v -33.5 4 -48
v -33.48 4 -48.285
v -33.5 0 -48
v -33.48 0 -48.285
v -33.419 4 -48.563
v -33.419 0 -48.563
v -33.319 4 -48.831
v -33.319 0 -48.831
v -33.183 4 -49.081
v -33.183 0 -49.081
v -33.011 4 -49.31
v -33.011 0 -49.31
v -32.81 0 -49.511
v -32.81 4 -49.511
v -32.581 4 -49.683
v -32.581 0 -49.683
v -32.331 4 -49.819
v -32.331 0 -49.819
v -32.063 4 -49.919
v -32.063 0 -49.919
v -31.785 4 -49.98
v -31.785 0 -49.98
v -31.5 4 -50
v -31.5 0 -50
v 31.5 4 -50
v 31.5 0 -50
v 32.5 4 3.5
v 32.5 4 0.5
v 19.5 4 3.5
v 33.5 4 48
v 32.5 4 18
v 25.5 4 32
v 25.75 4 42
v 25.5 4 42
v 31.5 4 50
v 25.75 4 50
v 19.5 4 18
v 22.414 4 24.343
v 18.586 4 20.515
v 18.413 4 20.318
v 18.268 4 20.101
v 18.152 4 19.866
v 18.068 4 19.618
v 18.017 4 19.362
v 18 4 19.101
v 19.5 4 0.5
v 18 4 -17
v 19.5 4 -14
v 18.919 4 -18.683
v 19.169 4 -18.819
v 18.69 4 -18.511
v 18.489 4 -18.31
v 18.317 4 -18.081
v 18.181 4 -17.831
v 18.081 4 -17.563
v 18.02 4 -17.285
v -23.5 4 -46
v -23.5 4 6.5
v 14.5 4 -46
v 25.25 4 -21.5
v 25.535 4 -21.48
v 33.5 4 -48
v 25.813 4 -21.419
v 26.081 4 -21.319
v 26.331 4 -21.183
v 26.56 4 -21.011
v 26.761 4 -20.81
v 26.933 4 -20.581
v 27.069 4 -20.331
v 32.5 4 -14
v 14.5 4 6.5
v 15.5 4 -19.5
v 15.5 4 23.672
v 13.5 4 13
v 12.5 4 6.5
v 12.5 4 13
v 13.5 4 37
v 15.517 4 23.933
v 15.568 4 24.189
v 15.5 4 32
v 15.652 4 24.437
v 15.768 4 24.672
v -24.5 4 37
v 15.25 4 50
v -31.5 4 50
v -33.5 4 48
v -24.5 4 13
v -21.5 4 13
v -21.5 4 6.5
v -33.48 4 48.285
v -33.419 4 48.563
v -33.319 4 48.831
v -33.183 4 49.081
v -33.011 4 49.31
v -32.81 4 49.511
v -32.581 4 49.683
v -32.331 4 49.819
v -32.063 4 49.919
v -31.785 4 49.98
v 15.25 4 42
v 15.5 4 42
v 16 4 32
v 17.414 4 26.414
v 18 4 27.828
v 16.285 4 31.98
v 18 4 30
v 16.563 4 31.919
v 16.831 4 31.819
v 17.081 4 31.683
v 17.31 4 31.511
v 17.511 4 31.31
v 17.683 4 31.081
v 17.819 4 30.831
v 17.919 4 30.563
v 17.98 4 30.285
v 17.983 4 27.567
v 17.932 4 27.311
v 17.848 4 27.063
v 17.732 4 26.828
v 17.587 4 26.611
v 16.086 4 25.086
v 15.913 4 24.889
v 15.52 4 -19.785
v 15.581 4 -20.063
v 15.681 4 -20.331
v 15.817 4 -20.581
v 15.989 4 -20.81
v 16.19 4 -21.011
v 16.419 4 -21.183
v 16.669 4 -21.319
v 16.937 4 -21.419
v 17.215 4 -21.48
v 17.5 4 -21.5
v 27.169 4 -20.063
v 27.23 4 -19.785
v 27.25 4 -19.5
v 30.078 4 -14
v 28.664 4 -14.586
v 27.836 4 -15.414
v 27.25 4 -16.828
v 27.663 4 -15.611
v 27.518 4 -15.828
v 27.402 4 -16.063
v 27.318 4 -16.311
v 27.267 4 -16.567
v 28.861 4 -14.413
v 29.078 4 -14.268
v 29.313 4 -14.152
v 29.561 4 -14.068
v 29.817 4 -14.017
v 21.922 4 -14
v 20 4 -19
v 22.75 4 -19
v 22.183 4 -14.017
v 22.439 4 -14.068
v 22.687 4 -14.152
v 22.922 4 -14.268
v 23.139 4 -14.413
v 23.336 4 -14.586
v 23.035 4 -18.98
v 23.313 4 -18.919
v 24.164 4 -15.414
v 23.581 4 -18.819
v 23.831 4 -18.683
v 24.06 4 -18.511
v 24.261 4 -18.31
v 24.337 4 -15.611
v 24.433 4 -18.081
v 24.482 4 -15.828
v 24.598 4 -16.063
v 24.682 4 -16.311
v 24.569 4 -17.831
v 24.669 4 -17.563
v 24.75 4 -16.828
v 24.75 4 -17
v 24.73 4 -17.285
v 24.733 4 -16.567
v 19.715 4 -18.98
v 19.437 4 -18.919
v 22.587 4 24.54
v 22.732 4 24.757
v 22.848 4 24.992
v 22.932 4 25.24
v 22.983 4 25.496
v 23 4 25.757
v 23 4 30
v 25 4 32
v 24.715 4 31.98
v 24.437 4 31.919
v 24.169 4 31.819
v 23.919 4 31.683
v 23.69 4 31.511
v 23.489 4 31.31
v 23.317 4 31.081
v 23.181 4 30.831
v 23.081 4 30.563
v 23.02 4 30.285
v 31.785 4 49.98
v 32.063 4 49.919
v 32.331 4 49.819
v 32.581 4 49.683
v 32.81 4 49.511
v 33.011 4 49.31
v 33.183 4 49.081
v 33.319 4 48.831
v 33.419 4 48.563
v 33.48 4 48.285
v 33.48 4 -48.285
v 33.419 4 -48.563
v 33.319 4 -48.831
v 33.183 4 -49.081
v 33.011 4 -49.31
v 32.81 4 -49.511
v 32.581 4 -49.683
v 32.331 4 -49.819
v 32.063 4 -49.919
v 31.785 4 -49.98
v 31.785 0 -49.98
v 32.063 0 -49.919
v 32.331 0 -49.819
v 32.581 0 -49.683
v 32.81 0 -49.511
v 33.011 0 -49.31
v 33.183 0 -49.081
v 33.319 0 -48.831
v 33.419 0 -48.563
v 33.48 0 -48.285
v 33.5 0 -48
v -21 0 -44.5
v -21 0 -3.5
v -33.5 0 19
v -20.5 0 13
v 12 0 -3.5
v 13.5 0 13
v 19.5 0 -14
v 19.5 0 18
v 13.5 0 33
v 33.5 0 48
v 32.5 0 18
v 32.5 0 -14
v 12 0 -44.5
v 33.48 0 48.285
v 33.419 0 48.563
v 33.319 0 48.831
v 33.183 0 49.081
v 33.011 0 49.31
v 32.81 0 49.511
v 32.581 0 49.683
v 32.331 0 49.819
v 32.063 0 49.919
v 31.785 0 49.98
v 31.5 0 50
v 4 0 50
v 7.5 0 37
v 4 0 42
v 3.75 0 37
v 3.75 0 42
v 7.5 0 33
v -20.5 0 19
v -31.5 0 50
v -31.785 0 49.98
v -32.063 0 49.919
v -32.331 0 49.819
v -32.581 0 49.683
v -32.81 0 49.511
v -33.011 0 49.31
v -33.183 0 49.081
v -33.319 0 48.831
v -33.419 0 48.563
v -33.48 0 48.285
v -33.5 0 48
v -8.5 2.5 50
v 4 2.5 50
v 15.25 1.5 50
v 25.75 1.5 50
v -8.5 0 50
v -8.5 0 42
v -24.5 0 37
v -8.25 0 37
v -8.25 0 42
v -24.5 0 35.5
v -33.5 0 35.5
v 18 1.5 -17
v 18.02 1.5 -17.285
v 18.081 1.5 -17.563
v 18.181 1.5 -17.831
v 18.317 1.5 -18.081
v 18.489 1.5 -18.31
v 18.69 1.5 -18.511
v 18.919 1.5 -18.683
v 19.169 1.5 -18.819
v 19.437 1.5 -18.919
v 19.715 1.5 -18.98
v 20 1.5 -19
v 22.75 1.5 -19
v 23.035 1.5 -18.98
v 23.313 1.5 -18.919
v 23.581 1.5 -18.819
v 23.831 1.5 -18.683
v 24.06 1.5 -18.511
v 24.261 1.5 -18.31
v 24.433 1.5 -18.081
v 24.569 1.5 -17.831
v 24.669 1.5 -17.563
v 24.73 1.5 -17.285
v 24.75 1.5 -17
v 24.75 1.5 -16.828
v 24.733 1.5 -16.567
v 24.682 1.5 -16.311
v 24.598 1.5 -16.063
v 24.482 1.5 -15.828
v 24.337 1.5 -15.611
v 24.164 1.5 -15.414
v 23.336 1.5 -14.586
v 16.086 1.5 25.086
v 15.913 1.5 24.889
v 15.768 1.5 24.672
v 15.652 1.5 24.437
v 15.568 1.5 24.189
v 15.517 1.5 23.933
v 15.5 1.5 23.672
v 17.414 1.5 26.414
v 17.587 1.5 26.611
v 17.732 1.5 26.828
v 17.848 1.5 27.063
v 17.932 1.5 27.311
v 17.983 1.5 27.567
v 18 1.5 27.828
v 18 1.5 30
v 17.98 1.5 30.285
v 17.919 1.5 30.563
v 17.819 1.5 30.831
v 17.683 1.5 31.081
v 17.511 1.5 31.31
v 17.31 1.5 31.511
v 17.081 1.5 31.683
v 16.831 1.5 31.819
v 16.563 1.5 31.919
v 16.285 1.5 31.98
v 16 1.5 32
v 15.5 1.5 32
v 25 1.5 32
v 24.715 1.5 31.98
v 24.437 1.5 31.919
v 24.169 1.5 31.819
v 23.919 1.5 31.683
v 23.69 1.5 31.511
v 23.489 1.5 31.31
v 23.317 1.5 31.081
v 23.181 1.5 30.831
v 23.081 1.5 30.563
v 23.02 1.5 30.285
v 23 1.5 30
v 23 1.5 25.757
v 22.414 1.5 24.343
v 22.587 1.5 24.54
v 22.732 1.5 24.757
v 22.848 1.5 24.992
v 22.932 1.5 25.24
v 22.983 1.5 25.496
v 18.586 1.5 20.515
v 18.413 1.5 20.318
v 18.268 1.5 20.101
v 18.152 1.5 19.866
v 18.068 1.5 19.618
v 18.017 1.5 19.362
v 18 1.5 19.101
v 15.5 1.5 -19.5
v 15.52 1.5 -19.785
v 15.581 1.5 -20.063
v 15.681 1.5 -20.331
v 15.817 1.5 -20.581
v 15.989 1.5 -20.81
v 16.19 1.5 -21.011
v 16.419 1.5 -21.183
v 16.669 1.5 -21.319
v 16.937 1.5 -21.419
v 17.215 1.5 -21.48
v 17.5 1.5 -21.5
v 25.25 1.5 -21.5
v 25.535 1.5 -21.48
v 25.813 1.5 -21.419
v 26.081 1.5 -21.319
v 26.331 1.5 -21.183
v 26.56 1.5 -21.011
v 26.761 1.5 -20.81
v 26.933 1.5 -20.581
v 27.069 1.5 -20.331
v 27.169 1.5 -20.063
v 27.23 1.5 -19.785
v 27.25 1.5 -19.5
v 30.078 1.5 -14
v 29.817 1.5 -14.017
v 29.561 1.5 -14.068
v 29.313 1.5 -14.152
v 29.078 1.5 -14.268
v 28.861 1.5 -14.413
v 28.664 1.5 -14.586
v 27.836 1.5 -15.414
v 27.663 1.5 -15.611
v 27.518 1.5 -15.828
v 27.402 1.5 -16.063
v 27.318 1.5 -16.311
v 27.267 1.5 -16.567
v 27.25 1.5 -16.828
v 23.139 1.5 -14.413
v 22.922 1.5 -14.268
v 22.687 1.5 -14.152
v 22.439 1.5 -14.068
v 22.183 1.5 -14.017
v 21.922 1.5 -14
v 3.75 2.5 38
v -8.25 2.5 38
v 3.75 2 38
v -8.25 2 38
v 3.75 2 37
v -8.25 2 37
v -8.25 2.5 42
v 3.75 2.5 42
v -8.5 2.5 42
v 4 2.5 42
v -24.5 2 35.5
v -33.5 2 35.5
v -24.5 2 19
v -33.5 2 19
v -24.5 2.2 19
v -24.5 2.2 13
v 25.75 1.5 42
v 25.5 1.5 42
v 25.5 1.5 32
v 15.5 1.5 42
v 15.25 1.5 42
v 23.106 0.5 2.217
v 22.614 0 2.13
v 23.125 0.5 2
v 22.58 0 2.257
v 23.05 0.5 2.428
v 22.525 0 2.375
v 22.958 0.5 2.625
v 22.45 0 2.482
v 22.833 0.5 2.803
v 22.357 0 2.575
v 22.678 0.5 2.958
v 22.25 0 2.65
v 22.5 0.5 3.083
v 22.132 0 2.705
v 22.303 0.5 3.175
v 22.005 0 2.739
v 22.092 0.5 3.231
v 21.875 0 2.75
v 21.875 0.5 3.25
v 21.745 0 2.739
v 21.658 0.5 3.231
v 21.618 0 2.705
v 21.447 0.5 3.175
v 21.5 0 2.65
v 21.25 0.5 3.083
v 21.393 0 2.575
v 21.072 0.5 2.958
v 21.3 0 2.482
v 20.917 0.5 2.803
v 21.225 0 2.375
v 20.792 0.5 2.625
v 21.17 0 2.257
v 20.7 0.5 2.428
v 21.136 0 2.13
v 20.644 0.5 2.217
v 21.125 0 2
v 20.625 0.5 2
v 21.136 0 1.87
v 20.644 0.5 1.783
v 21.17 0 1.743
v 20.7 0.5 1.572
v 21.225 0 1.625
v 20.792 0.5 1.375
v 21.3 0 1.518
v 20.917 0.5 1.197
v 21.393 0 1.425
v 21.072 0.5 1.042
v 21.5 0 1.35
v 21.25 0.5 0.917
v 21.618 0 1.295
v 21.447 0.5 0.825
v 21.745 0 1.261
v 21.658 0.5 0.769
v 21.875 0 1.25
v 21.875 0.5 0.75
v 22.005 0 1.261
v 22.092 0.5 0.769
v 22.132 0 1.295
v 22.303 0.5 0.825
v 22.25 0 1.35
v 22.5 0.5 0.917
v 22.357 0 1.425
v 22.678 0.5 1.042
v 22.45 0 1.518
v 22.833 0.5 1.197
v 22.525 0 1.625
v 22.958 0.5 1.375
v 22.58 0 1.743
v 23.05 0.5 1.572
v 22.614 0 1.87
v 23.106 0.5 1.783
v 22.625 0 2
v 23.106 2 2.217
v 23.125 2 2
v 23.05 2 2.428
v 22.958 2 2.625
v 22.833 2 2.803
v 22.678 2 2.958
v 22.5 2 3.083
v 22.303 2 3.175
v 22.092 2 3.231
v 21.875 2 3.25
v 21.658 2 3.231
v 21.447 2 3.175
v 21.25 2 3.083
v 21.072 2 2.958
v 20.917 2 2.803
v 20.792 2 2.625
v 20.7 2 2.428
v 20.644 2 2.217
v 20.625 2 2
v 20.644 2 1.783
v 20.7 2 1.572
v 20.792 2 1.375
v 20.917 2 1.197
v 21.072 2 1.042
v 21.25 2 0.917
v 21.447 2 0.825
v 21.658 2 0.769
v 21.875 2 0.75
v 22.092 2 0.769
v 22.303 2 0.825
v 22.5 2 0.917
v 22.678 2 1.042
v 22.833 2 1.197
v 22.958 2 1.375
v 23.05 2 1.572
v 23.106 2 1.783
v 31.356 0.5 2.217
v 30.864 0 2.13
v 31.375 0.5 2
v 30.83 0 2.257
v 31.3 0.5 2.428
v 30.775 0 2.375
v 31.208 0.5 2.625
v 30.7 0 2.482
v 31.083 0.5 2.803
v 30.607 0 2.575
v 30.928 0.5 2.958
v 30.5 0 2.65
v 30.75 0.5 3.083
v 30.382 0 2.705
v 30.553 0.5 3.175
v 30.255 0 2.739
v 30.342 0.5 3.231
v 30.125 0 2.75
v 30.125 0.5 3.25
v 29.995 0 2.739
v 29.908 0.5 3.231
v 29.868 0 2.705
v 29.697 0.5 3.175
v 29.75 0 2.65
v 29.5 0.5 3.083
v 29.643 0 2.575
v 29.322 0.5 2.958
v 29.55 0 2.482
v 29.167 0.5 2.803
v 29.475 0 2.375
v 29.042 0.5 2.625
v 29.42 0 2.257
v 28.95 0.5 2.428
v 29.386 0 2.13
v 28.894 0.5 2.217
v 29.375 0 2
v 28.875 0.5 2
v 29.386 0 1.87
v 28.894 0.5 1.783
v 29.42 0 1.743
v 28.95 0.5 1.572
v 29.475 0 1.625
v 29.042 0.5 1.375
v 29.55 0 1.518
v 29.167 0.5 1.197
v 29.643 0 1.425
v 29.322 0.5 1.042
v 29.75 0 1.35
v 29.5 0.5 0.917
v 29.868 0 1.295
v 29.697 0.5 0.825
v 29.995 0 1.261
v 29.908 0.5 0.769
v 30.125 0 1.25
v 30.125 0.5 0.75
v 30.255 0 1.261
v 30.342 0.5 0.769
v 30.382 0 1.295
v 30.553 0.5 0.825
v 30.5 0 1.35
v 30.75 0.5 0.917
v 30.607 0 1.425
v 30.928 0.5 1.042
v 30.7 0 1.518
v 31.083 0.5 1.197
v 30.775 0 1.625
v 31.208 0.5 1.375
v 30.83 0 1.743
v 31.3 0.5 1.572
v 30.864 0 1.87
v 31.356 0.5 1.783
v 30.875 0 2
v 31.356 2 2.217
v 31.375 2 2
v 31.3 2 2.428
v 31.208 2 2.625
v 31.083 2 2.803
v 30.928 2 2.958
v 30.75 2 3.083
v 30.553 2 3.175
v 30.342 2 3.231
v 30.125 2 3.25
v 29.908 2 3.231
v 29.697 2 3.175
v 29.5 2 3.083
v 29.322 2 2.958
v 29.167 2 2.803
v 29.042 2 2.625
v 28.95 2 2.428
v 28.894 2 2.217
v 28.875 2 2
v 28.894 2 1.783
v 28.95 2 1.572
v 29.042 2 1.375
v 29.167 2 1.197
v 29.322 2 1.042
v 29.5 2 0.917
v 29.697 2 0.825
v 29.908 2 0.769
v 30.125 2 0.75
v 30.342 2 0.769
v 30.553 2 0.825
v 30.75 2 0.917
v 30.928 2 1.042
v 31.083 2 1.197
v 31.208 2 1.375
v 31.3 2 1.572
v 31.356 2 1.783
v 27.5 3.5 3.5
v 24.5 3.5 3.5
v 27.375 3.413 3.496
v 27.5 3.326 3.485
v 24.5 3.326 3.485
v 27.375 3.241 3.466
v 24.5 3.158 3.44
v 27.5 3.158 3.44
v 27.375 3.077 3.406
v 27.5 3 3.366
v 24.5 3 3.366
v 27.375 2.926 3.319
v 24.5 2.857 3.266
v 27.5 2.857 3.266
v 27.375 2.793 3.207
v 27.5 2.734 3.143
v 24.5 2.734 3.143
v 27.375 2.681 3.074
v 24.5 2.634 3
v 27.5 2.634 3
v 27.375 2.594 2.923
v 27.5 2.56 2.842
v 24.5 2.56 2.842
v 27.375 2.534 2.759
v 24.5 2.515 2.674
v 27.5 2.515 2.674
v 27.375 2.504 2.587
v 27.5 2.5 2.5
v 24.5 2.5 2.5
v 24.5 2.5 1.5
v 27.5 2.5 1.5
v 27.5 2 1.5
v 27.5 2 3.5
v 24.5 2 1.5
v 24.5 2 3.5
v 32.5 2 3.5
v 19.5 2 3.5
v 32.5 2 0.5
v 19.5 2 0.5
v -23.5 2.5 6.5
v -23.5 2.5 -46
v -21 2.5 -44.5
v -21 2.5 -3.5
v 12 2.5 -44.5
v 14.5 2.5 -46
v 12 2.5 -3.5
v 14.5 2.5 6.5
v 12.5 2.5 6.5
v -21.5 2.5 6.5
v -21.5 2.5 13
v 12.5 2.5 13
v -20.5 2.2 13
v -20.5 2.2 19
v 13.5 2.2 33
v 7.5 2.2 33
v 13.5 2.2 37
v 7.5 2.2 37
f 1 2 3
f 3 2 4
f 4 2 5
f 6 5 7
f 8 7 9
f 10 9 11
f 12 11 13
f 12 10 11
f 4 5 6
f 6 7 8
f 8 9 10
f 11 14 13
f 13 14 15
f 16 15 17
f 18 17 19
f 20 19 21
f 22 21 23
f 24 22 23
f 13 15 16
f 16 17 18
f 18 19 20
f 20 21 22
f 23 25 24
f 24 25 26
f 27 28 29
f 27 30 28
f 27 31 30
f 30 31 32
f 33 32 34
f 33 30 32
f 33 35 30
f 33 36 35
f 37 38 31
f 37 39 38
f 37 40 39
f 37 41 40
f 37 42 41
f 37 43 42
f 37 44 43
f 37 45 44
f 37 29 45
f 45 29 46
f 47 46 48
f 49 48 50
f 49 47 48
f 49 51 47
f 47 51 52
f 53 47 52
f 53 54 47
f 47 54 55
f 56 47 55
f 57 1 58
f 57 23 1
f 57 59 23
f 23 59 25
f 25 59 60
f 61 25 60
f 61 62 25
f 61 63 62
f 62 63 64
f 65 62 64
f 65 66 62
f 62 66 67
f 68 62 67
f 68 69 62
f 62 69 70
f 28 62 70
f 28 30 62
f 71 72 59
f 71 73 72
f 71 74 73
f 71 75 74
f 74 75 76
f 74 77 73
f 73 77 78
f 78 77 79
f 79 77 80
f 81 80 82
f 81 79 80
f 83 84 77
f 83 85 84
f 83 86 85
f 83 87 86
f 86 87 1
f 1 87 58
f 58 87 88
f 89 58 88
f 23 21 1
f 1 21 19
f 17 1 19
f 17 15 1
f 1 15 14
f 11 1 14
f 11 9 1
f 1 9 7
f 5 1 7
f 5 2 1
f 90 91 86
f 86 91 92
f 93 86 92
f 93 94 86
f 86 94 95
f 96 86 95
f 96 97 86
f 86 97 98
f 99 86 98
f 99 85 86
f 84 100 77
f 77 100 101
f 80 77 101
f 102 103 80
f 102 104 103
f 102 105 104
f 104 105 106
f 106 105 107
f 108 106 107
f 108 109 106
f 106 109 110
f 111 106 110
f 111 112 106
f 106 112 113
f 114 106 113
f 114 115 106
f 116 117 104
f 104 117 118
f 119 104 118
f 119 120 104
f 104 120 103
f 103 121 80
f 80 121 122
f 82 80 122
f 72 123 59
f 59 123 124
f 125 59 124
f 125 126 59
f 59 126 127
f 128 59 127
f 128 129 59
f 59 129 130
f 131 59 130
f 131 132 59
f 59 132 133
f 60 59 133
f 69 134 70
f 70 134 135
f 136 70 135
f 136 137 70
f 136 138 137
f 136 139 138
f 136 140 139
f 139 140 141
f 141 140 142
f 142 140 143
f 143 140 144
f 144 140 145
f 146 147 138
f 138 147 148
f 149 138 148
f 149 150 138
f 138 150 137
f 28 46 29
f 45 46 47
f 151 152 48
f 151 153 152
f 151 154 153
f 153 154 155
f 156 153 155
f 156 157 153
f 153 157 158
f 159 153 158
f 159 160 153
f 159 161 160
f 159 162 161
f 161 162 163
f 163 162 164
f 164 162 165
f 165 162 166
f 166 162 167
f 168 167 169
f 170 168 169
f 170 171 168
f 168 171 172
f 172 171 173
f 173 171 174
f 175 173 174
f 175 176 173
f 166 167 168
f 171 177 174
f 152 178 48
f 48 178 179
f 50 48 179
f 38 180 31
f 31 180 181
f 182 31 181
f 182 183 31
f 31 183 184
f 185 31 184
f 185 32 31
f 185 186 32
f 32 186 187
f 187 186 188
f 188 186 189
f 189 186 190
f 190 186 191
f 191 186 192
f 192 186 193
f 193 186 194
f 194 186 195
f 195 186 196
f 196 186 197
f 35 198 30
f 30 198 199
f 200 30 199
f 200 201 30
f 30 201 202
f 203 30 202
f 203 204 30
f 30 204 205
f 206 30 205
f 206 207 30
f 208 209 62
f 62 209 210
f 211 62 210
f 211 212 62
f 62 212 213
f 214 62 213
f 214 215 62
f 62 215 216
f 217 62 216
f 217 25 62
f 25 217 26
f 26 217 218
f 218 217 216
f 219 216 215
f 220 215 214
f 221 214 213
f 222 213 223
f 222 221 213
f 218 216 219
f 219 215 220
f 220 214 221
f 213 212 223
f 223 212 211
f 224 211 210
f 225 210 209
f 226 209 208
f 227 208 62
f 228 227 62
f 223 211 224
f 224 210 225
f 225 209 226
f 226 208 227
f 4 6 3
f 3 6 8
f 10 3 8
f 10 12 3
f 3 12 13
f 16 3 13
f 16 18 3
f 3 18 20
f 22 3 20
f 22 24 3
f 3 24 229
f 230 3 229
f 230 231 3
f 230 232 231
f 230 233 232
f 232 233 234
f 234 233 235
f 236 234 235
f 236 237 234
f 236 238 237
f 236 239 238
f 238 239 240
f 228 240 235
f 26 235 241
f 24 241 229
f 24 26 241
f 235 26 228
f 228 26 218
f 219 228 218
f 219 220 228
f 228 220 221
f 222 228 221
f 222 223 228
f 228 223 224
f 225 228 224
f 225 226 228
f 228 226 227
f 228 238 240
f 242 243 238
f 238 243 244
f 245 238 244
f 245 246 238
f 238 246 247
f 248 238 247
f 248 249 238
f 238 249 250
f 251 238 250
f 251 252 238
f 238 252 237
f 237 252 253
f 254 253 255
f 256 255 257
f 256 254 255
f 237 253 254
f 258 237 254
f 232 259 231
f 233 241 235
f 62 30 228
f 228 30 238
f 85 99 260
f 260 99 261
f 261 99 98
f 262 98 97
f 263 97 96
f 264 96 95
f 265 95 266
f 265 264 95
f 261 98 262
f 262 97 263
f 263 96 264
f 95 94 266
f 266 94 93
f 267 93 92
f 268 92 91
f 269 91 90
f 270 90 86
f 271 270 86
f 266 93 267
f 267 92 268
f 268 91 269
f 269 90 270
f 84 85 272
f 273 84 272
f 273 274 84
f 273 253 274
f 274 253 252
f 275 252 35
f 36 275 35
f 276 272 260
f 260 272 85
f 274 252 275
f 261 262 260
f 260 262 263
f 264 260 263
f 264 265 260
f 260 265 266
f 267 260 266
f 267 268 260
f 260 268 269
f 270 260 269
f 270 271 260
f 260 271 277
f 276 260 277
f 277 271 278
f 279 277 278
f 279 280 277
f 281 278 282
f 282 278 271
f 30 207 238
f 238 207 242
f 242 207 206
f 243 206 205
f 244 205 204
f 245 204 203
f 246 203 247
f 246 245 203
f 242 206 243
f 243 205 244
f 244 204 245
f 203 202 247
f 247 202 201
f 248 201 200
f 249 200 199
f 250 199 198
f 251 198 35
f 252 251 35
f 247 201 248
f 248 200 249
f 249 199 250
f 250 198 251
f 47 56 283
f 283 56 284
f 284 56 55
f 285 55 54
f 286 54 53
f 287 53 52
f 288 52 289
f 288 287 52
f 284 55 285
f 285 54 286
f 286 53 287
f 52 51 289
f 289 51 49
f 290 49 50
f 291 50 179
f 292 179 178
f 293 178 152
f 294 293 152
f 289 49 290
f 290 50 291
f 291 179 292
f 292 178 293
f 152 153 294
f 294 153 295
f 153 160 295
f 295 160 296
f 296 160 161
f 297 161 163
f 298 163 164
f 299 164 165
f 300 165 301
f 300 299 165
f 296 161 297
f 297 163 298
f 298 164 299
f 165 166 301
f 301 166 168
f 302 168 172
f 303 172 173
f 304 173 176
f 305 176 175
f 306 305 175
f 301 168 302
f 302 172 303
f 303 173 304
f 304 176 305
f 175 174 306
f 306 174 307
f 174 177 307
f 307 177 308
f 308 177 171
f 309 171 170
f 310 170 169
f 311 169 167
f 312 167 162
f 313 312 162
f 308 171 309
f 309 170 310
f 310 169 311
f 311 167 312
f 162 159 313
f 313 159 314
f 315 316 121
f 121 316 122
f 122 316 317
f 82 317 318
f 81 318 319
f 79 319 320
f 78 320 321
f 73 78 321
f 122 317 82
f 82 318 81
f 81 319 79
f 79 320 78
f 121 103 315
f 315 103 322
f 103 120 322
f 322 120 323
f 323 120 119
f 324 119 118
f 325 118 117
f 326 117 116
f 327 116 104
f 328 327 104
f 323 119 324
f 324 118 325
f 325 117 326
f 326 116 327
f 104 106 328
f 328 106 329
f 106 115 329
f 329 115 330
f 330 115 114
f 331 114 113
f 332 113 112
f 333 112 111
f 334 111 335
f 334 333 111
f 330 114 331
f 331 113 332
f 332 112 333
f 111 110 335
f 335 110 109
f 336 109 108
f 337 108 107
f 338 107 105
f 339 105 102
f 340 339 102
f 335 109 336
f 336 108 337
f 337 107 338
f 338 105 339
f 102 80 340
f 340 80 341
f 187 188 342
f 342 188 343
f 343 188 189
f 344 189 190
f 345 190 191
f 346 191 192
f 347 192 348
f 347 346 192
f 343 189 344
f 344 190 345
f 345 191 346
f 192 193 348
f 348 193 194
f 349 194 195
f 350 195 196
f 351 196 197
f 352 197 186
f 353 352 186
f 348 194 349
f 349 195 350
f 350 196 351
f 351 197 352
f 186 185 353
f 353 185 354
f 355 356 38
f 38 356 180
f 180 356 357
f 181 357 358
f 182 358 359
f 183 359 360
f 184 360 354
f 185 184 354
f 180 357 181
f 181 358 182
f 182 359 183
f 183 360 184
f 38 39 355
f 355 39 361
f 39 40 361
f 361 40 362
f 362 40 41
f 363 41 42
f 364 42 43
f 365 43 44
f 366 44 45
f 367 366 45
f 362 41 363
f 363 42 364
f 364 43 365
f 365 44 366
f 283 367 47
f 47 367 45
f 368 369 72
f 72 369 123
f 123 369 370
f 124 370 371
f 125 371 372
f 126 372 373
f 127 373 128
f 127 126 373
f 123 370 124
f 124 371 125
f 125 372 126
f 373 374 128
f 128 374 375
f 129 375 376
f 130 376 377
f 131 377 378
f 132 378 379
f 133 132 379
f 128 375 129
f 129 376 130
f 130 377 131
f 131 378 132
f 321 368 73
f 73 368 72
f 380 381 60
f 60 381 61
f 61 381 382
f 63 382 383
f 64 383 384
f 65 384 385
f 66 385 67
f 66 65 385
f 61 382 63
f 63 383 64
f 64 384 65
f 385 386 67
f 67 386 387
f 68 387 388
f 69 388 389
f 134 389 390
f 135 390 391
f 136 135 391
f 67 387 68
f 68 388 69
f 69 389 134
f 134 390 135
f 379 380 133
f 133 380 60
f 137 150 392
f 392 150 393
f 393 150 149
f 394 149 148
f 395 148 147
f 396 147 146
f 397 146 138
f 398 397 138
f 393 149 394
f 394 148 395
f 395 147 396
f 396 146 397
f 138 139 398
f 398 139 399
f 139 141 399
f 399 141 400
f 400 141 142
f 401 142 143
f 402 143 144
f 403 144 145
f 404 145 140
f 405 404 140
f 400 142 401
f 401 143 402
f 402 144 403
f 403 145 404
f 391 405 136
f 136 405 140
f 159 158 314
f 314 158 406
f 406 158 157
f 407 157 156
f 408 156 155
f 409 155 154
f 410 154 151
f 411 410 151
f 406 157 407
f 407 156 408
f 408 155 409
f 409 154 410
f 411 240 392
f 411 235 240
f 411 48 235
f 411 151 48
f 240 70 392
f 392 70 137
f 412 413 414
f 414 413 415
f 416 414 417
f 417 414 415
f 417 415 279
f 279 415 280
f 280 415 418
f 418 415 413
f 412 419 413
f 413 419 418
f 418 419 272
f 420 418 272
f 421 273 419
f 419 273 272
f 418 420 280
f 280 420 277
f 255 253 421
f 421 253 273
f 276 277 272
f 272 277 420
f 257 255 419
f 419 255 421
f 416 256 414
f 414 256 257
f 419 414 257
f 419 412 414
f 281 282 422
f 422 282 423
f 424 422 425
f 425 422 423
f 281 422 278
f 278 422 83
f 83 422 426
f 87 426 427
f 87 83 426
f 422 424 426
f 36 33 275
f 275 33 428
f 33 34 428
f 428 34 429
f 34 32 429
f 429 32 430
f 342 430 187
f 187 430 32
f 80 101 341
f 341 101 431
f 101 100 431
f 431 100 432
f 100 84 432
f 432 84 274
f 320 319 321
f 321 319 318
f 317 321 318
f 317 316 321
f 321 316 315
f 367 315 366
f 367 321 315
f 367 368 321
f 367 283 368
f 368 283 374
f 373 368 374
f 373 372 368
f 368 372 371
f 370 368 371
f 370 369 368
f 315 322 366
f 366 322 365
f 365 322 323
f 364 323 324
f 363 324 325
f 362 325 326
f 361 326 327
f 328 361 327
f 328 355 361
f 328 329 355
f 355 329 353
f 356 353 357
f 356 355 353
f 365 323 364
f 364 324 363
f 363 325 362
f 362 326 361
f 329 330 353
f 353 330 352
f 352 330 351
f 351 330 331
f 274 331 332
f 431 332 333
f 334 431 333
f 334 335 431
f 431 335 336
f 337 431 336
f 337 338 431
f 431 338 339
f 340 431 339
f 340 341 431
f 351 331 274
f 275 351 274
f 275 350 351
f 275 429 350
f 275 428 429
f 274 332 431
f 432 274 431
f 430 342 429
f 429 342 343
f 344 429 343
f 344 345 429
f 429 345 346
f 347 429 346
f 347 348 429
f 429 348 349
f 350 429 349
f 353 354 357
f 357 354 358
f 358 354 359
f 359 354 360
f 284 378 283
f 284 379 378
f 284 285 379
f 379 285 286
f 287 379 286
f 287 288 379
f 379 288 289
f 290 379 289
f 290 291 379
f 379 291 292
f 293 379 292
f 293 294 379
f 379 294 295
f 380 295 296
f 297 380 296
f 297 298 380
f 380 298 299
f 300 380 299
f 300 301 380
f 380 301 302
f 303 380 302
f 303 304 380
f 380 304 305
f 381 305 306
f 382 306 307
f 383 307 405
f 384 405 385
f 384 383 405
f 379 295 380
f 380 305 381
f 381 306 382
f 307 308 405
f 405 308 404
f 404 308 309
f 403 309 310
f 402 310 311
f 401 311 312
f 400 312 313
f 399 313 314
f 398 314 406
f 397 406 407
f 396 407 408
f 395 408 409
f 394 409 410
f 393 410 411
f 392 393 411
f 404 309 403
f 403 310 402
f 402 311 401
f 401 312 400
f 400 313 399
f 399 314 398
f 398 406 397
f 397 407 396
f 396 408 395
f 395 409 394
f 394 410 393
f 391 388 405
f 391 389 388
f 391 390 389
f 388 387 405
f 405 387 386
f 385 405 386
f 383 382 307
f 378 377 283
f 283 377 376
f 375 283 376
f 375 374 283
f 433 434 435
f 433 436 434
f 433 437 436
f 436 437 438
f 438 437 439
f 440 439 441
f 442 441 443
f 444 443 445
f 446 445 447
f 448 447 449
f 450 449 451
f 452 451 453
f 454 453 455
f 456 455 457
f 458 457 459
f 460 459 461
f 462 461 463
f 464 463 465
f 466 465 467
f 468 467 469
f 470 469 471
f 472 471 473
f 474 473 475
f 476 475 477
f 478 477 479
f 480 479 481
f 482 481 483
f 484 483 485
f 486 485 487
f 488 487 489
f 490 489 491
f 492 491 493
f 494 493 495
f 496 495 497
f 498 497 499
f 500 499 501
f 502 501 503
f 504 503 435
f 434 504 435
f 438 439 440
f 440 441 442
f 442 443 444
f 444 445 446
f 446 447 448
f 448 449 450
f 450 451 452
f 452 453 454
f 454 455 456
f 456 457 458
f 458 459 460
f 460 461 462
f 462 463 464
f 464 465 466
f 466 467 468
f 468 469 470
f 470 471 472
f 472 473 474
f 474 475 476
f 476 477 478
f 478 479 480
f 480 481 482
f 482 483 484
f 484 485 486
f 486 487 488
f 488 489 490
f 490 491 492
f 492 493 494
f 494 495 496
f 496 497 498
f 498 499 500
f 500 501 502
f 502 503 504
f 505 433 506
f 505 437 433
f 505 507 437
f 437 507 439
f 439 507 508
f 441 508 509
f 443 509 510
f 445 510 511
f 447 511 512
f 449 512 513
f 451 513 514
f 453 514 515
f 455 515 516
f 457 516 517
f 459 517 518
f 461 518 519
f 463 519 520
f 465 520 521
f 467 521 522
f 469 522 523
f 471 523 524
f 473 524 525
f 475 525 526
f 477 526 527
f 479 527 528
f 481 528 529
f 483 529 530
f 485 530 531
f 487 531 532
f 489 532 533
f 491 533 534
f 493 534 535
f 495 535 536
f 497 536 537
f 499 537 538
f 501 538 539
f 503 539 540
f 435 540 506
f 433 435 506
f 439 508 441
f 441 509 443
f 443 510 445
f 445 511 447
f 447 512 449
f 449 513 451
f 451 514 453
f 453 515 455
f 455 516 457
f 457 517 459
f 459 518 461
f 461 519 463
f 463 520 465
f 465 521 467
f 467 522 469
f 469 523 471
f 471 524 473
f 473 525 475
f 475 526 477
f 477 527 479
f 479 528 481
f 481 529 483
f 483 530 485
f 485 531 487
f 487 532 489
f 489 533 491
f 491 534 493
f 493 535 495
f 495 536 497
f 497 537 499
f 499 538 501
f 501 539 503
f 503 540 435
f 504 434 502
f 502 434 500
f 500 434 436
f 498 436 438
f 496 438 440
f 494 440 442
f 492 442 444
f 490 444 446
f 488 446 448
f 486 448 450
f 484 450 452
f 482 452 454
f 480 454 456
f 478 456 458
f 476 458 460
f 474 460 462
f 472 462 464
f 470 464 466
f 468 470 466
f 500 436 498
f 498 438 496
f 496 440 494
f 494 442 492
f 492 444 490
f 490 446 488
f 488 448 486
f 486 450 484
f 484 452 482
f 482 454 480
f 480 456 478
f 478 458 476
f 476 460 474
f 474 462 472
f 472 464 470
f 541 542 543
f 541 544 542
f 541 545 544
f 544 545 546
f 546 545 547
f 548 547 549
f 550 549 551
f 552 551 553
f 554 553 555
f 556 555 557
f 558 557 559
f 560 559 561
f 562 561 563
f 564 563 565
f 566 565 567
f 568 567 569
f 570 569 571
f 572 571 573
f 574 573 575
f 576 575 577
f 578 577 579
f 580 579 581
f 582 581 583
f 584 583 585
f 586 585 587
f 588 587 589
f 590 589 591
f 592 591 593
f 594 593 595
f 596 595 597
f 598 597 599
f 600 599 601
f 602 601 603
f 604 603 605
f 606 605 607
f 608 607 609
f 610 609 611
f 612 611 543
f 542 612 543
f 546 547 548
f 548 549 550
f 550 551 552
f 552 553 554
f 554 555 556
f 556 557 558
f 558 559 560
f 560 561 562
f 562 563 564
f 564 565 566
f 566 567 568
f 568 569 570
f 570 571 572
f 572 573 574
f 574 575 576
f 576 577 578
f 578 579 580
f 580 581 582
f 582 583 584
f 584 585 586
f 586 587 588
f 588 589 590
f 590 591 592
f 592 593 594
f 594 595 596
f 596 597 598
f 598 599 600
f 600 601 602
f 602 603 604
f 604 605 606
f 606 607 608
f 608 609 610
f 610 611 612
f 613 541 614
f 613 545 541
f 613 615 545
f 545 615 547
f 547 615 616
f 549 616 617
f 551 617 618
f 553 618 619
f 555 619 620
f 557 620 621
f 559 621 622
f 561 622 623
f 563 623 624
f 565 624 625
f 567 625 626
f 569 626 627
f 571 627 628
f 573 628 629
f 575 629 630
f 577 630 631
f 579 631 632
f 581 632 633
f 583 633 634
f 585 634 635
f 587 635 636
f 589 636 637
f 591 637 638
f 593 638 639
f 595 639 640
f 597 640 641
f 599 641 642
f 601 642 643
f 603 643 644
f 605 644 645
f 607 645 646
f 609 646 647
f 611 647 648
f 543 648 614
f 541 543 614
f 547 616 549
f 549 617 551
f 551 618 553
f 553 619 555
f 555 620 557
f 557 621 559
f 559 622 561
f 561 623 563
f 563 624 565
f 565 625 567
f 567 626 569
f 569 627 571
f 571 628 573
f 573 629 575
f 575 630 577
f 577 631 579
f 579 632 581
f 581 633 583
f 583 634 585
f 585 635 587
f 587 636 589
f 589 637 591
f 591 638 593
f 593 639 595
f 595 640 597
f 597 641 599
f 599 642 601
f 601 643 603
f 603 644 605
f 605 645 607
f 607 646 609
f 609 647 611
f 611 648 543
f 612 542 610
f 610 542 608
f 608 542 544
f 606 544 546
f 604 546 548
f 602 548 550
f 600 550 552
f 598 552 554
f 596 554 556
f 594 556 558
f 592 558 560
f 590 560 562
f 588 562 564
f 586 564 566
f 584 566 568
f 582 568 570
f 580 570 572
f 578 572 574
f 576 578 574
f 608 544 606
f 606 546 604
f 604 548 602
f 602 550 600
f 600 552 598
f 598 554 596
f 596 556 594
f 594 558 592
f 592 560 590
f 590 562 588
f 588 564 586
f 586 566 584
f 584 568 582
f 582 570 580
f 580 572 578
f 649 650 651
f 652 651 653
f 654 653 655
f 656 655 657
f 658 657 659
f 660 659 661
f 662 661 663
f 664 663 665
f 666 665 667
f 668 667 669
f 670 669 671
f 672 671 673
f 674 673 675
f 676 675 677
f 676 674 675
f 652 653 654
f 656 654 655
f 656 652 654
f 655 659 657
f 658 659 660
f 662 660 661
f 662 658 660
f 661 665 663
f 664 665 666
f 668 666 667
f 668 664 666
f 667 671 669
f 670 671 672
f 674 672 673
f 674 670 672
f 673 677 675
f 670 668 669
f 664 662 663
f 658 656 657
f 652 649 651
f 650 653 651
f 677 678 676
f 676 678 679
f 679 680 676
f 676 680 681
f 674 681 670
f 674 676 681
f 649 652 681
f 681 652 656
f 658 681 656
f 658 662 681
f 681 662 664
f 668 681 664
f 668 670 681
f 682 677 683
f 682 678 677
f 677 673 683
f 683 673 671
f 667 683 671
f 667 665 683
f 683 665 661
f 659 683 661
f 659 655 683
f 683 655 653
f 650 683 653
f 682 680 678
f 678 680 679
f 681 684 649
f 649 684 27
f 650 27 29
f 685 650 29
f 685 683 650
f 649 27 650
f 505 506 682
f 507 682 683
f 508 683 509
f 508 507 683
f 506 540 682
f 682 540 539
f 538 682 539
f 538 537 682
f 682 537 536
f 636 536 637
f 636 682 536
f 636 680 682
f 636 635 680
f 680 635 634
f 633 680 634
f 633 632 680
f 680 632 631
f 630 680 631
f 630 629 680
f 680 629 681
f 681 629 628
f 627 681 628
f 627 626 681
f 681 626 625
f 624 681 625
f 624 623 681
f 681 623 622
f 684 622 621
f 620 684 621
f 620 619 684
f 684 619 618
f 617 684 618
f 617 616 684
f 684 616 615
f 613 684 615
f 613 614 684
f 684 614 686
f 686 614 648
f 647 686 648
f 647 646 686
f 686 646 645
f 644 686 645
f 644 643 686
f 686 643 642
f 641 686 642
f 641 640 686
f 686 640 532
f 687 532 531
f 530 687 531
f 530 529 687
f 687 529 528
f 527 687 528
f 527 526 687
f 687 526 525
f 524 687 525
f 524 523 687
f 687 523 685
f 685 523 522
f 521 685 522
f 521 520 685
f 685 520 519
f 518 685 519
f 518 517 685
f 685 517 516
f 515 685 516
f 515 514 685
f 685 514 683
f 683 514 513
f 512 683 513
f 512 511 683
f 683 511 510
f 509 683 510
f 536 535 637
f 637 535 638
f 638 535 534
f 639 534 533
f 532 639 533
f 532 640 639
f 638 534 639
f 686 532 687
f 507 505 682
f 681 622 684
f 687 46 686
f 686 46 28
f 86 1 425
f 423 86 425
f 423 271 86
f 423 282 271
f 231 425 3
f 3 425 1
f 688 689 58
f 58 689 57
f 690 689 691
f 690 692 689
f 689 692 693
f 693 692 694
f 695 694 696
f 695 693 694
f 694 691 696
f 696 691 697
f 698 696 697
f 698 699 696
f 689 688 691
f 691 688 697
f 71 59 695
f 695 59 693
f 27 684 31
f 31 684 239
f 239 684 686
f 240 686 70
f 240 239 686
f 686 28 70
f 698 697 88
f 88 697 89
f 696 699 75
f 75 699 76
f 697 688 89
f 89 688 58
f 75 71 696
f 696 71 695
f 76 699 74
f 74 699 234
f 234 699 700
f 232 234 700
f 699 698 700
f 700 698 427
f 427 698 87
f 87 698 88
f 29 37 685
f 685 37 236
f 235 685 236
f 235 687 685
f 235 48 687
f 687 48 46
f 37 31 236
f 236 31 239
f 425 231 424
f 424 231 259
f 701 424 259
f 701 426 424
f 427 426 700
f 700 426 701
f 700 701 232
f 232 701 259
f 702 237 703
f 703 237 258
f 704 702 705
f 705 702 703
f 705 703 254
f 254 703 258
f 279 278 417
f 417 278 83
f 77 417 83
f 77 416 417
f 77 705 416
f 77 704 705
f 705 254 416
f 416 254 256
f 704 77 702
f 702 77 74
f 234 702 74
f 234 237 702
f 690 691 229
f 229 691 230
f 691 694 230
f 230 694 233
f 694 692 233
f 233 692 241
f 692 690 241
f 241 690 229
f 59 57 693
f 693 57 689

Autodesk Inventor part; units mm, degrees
ref_plane "YZ Plane" through (0, 0, 0) normal (1, 0, 0) x (0, 1, 0)
ref_plane "XZ Plane" through (0, 0, 0) normal (0, 1, 0) x (-1, 0, 0)
ref_plane "XY Plane" through (0, 0, 0) normal (0, 0, 1) x (1, 0, 0)
sketch "Sketch2" plane through (0, 0, 0) normal (0, 1, 0) x (-1, 0, 0)
  line L0 (-33.5, -50) -> (33.5, -50)
  line L1 (33.5, -50) -> (33.5, 50)
  line L2 (33.5, 50) -> (-33.5, 50)
  line L3 (-33.5, 50) -> (-33.5, -50)
  line L4 (-33.5, -50) -> (33.5, 50) construction
  line L5 (33.5, -50) -> (-33.5, 50) construction
  point P0 (0, 0)
  dimension "d0" = 67
  dimension "d1" = 100
extrude "Extrusion1" add sketch "Sketch2" along normal blind 4
sketch "Sketch3" plane through (0, 4, 0) normal (0, 1, 0) x (1, 0, 0)
  line L0 (33.5, 50) -> (-33.5, 50) projected
  line L1 (-23.5, -6.5) -> (14.5, -6.5)
  line L2 (14.5, -6.5) -> (14.5, 46)
  line L3 (14.5, 46) -> (-23.5, 46)
  line L4 (-23.5, 46) -> (-23.5, -6.5)
  line L5 (-23.5, -6.5) -> (14.5, 46) construction
  line L6 (14.5, -6.5) -> (-23.5, 46) construction
  line L7 (-33.5, 50) -> (-33.5, -50) projected
  point P0 (0, 0)
  point P1 (-4.5, 19.75)
  dimension "d4" = 38
  dimension "d5" = 52.5
  dimension "d6" = 4
  dimension "d111" = 10
extrude "Extrusion2" cut sketch "Sketch3" against normal blind 1.5
sketch "Sketch4" plane through (0, 2.5, 0) normal (0, 1, 0) x (1, 0, 0)
  line L0 (14.5, -6.5) -> (-23.5, -6.5) projected
  line L1 (14.5, 46) -> (14.5, -6.5) projected
  line L2 (-23.5, 46) -> (14.5, 46) projected
  line L3 (-23.5, -6.5) -> (-23.5, 46) projected
  line L4 (-21, 44.5) -> (12, 44.5)
  line L5 (12, 44.5) -> (12, 3.5)
  line L6 (12, 3.5) -> (-21, 3.5)
  line L7 (-21, 3.5) -> (-21, 44.5)
  line L8 (-21, 44.5) -> (12, 3.5) construction
  line L9 (12, 44.5) -> (-21, 3.5) construction
  point P0 (0, 0)
  point P1 (-4.5, 24)
  dimension "d9" = 10
  dimension "d10" = 1.5
  dimension "d11" = 2.5
  dimension "d12" = 2.5
extrude "Extrusion3" cut sketch "Sketch4" against normal blind 2.5 contours L4 L5 L6 L7
sketch "Sketch12" plane through (0, 4, 0) normal (0, 1, 0) x (1, 0, 0)
  line L0 (-24.5, -37) -> (13.5, -37)
  line L1 (13.5, -37) -> (13.5, -13)
  line L2 (13.5, -13) -> (-24.5, -13)
  line L3 (-24.5, -13) -> (-24.5, -37)
  line L4 (-24.5, -37) -> (13.5, -13) construction
  line L5 (13.5, -37) -> (-24.5, -13) construction
  line L6 (-23.5, -6.5) -> (-23.5, 46) projected
  line L7 (14.5, -6.5) -> (-23.5, -6.5) projected
  point P0 (0, 0)
  point P1 (-5.5, -25)
  point P2 (-5.5, -25)
  dimension "d58" = 38
  dimension "d59" = 24
  dimension "d112" = 1
  dimension "d154" = 6.5
extrude "Extrusion10" cut sketch "Sketch12" against normal blind 4
sketch "Sketch18" plane through (13.5, 4, 13) normal (-1, 0, 0) x (0, 0, 1)
  line L0 (0, 0) -> (24, 0) projected
  line L1 (24, -4) -> (20, -4)
  line L2 (20, -4) -> (20, -1.8)
  line L3 (20, -1.8) -> (24, -1.8)
  line L4 (24, -1.8) -> (24, -4)
  point P0 (-13, -4)
  dimension "d88" = 4
  dimension "d89" = 1.8
extrude "Extrusion17" add sketch "Sketch18" along normal blind 6
sketch "Sketch20" plane through (-24.5, 4, 37) normal (1, 0, 0) x (0, 0, -1)
  line L0 (0, 0) -> (24, 0) projected
  line L1 (24, -4) -> (18, -4)
  line L2 (18, -4) -> (18, -1.8)
  line L3 (18, -1.8) -> (24, -1.8)
  line L4 (24, -1.8) -> (24, -4)
  point P0 (37, -4)
  dimension "d96" = 6
  dimension "d97" = 1.8
extrude "Extrusion19" add sketch "Sketch20" along normal blind 4
sketch "Sketch22" plane through (0, 0, 0) normal (0, -1, 0) x (1, 0, 0)
  line L0 (33.5, 50) -> (33.5, -50) projected
  line L1 (32.5, -14) -> (19.5, -14)
  line L2 (19.5, -14) -> (19.5, 18)
  line L3 (19.5, 18) -> (32.5, 18)
  line L4 (32.5, 18) -> (32.5, -14)
  line L5 (33.5, -50) -> (-33.5, -50) projected
  point P0 (0, 0)
  dimension "d102" = 1
  dimension "d103" = 13
  dimension "d110" = 32
  dimension "d155" = 36
extrude "Extrusion21" cut sketch "Sketch22" against normal up to next
sketch "Sketch23" plane through (0, 4, 0) normal (0, 1, 0) x (1, 0, 0)
  line L0 (-24.5, -13) -> (13.5, -13) projected
  line L1 (14.5, 46) -> (14.5, -6.5) projected
  line L2 (14.5, -6.5) -> (-23.5, -6.5) projected
  line L3 (-23.5, -6.5) -> (-23.5, 46) projected
  line L4 (-21.5, -6.5) -> (-21.5, -13)
  line L5 (12.5, -6.5) -> (12.5, -13)
  point P0 (0, 0)
  dimension "d114" = 2
  dimension "d115" = 2
extrude "Extrusion22" cut sketch "Sketch23" against normal up to surface (1.5 mm away)
sketch "Sketch24" plane through (32.5, 0, -14) normal (-1, 0, 0) x (0, 0, 1)
  line L0 (0, 0) -> (0, 4) projected
  line L1 (14.5, 2) -> (17.5, 2)
  line L2 (17.5, 2) -> (17.5, 4)
  line L3 (17.5, 4) -> (14.5, 4)
  line L4 (14.5, 4) -> (14.5, 2)
  line L5 (14.5, 2) -> (17.5, 4) construction
  line L6 (17.5, 2) -> (14.5, 4) construction
  line L7 (0, 4) -> (32, 4) projected
  point P0 (16, 3)
  dimension "d118" = 3
  dimension "d119" = 2
  dimension "d120" = 16
extrude "Extrusion23" add sketch "Sketch24" along normal up to next
sketch "Sketch25" plane through (32.5, 2, 0.5) normal (0, -1, 0) x (1, 0, 0)
  line L0 (-8, 1) -> (-5, 1)
  line L1 (-5, 1) -> (-5, 3)
  line L2 (-5, 3) -> (-8, 3)
  line L3 (-8, 3) -> (-8, 1)
  line L4 (-8, 1) -> (-5, 3) construction
  line L5 (-5, 1) -> (-8, 3) construction
  line L6 (0, 3) -> (-13, 3) projected
  point P0 (32.5, 26.5)
  point P1 (-6.5, 2)
  point P2 (-6.5, 2)
  point P3 (-6.5, 0)
  point P4 (-6.5, 2)
  point P5 (-6.5, 3)
  dimension "d123" = 3
  dimension "d124" = 2
extrude "Extrusion24" cut sketch "Sketch25" against normal blind 0.5
fillet "Fillet6" radius 1 1 edges at (26, 2.5, 3.5)
sketch "Sketch26" plane through (32.5, 2, 0.5) normal (0, -1, 0) x (1, 0, 0)
  line L0 (0, 3) -> (0, 0)
  circle A0 centre (-10.625, 1.5) radius 1.25
  circle A1 centre (-2.375, 1.5) radius 1.25
  line L1 (0, 3) -> (-13, 3) projected
  line L2 (-13, -14.5) -> (-13, 17.5) projected
  point P0 (32.5, 26.5)
  point P1 (-6.5, 1.5)
  point P2 (0, 1.5)
  point P3 (-6.5, 0)
  point P4 (-6.5, 3)
  point P5 (-13, 1.5)
  dimension "d128" = 2.5
  dimension "d129" = 2.5
  dimension "d130" = 4.125
  dimension "d131" = 8.25
extrude "Extrusion25" add sketch "Sketch26" along normal blind 2
chamfer "Chamfer3" distance 0.5 angle 45 2 edges at (28.875, 0, 2) (20.625, 0, 2)
sketch "Sketch27" plane through (0, 4, 0) normal (0, 1, 0) x (1, 0, 0)
  line L0 (-33.5, -50) -> (33.5, -50) projected
  line L1 (32.5, -18) -> (19.5, -18) projected
  line L2 (19.5, 14) -> (32.5, 14) projected
  line L3 (15.25, -50) -> (25.75, -50)
  line L4 (25.75, -50) -> (25.75, -32)
  line L5 (25.75, -32) -> (15.25, -32)
  line L6 (15.25, -32) -> (15.25, -50)
  line L7 (15.25, -50) -> (25.75, -32) construction
  line L8 (25.75, -50) -> (15.25, -32) construction
  line L9 (19.5, -18) -> (19.5, 14) projected
  line L10 (15.25, -42) -> (15.5, -42)
  line L11 (15.5, -42) -> (15.5, -32)
  line L12 (25.75, -42) -> (25.5, -42)
  line L13 (25.5, -42) -> (25.5, -32)
  point P0 (0, 0)
  point P1 (26, 14)
  point P2 (20.5, -41)
  point P3 (20.5, -41)
  point P4 (26, -18)
  dimension "d138" = 10.5
  dimension "d139" = 18
  dimension "d148" = 0.25
  dimension "d149" = 0.25
  dimension "d150" = 8
  dimension "d168" = 13
extrude "Extrusion26" cut sketch "Sketch27" against normal blind 2.5 contours L6 L10 L11 L5 L13 L12 L4 L0
sketch "Sketch29" plane through (0, 0, 0) normal (0, -1, 0) x (1, 0, 0)
  line L0 (-24.5, 19) -> (-24.5, 37) projected
  line L1 (-24.5, 37) -> (7.5, 37) projected
  line L2 (-33.5, -50) -> (-33.5, 50) projected
  line L3 (-33.5, 50) -> (33.5, 50) projected
  line L4 (-24.5, 19) -> (-33.5, 19)
  line L5 (-24.5, 35.5) -> (-33.5, 35.5)
  point P0 (0, 0)
  dimension "d151" = 1.5
extrude "Extrusion28" cut sketch "Sketch29" against normal blind 2
sketch "Sketch30" plane through (0, 0, 0) normal (0, -1, 0) x (1, 0, 0)
  line L0 (-33.5, 50) -> (33.5, 50) projected
  line L1 (-8.5, 42) -> (4, 42)
  line L2 (4, 42) -> (4, 50)
  line L3 (4, 50) -> (-8.5, 50)
  line L4 (-8.5, 50) -> (-8.5, 42)
  line L5 (-8.5, 42) -> (4, 50) construction
  line L6 (4, 42) -> (-8.5, 50) construction
  line L7 (3.75, 37) -> (-8.25, 37)
  line L8 (-8.25, 37) -> (-8.25, 42)
  line L9 (-8.25, 42) -> (3.75, 42)
  line L10 (3.75, 42) -> (3.75, 37)
  line L11 (3.75, 37) -> (-8.25, 42) construction
  line L12 (-8.25, 37) -> (3.75, 42) construction
  line L13 (-24.5, 37) -> (7.5, 37) projected
  point P0 (0, 0)
  point P1 (-2.25, 46)
  point P2 (-2.25, 39.5)
  point P3 (-2.25, 39.5)
  point P4 (-2.25, 46)
  dimension "d156" = 12.5
  dimension "d157" = 8
  dimension "d158" = 16
  dimension "d162" = 12
extrude "Extrusion29" cut sketch "Sketch30" against normal blind 2.5
sketch "Sketch32" plane through (0, 2.5, 0) normal (0, -1, 0) x (1, 0, 0)
  line L0 (-8.25, 37) -> (-8.25, 42) projected
  line L1 (3.75, 37) -> (-8.25, 37) projected
  line L2 (3.75, 42) -> (3.75, 37) projected
  line L3 (-8.25, 42) -> (-8.5, 42) projected
  line L4 (-8.25, 38) -> (3.75, 38)
  point P0 (0, 0)
  dimension "d183" = 1
extrude "Extrusion31" add sketch "Sketch32" along normal blind 0.5
sketch "Sketch33" plane through (0, 4, 0) normal (0, 1, 0) x (1, 0, 0)
  line L0 (27.25, 14) -> (27.25, 21.5)
  line L1 (27.25, 21.5) -> (15.5, 21.5)
  line L2 (15.5, 21.5) -> (15.5, -24.5)
  line L3 (24.75, 14) -> (24.75, 19)
  line L4 (24.75, 19) -> (18, 19)
  line L5 (18, 19) -> (18, -19.9289)
  line L6 (18, -19.9289) -> (23, -24.9289)
  line L7 (23, -24.9289) -> (23, -32)
  line L8 (15.5, -24.5) -> (18, -27)
  line L9 (18, -27) -> (18, -32)
  line L10 (19.5, 14) -> (32.5, 14) projected
  line L11 (18, -32) -> (23, -32)
  line L12 (24.75, 14) -> (27.25, 14)
  line L13 (15.5, -32) -> (25.5, -32) projected
  line L14 (13.5, -13) -> (13.5, -37) projected
  point P0 (0, 0)
  point P1 (26, 14)
  point P2 (20.5, -32)
  point P3 (20.5, -32)
  point P4 (26, 14)
  point P5 (20.5, -32)
  dimension "d198" = 2.5
  dimension "d199" = 2.5
  dimension "d200" = 2.5
  dimension "d201" = 5
  dimension "d202" = 5
  dimension "d203" = 135
  dimension "d204" = 135
  dimension "d205" = 2.5
  dimension "d206" = 1.25
  dimension "d207" = 2
  dimension "d208" = 5
  dimension "d209" = 5
extrude "Extrusion32" cut sketch "Sketch33" against normal up to surface (2.5 mm away)
chamfer "Chamfer6" distance 2 angle 45 2 edges at (24.75, 2.75, -14) (27.25, 2.75, -14)
fillet "Fillet9" radius 2 13 edges at (22.75, 2.75, -14) (27.25, 2.75, -16) (29.25, 2.75, -14) (27.25, 2.75, -21.5) (15.5, 2.75, -21.5) (18, 2.75, 19.9289) (23, 2.75, 24.9289) (23, 2.75, 32) (18, 2.75, 32) (18, 2.75, 27) (15.5, 2.75, 24.5) (24.75, 2.75, -16) (24.75, 2.75, -19)
fillet "Fillet9" radius 2 1 edges at (18, 2.75, -19)
fillet "Fillet10" radius 2 4 edges at (33.5, 2, 50) (-33.5, 2, 50) (33.5, 2, -50) (-33.5, 2, -50)
properties part number "DisplayBottom2"
